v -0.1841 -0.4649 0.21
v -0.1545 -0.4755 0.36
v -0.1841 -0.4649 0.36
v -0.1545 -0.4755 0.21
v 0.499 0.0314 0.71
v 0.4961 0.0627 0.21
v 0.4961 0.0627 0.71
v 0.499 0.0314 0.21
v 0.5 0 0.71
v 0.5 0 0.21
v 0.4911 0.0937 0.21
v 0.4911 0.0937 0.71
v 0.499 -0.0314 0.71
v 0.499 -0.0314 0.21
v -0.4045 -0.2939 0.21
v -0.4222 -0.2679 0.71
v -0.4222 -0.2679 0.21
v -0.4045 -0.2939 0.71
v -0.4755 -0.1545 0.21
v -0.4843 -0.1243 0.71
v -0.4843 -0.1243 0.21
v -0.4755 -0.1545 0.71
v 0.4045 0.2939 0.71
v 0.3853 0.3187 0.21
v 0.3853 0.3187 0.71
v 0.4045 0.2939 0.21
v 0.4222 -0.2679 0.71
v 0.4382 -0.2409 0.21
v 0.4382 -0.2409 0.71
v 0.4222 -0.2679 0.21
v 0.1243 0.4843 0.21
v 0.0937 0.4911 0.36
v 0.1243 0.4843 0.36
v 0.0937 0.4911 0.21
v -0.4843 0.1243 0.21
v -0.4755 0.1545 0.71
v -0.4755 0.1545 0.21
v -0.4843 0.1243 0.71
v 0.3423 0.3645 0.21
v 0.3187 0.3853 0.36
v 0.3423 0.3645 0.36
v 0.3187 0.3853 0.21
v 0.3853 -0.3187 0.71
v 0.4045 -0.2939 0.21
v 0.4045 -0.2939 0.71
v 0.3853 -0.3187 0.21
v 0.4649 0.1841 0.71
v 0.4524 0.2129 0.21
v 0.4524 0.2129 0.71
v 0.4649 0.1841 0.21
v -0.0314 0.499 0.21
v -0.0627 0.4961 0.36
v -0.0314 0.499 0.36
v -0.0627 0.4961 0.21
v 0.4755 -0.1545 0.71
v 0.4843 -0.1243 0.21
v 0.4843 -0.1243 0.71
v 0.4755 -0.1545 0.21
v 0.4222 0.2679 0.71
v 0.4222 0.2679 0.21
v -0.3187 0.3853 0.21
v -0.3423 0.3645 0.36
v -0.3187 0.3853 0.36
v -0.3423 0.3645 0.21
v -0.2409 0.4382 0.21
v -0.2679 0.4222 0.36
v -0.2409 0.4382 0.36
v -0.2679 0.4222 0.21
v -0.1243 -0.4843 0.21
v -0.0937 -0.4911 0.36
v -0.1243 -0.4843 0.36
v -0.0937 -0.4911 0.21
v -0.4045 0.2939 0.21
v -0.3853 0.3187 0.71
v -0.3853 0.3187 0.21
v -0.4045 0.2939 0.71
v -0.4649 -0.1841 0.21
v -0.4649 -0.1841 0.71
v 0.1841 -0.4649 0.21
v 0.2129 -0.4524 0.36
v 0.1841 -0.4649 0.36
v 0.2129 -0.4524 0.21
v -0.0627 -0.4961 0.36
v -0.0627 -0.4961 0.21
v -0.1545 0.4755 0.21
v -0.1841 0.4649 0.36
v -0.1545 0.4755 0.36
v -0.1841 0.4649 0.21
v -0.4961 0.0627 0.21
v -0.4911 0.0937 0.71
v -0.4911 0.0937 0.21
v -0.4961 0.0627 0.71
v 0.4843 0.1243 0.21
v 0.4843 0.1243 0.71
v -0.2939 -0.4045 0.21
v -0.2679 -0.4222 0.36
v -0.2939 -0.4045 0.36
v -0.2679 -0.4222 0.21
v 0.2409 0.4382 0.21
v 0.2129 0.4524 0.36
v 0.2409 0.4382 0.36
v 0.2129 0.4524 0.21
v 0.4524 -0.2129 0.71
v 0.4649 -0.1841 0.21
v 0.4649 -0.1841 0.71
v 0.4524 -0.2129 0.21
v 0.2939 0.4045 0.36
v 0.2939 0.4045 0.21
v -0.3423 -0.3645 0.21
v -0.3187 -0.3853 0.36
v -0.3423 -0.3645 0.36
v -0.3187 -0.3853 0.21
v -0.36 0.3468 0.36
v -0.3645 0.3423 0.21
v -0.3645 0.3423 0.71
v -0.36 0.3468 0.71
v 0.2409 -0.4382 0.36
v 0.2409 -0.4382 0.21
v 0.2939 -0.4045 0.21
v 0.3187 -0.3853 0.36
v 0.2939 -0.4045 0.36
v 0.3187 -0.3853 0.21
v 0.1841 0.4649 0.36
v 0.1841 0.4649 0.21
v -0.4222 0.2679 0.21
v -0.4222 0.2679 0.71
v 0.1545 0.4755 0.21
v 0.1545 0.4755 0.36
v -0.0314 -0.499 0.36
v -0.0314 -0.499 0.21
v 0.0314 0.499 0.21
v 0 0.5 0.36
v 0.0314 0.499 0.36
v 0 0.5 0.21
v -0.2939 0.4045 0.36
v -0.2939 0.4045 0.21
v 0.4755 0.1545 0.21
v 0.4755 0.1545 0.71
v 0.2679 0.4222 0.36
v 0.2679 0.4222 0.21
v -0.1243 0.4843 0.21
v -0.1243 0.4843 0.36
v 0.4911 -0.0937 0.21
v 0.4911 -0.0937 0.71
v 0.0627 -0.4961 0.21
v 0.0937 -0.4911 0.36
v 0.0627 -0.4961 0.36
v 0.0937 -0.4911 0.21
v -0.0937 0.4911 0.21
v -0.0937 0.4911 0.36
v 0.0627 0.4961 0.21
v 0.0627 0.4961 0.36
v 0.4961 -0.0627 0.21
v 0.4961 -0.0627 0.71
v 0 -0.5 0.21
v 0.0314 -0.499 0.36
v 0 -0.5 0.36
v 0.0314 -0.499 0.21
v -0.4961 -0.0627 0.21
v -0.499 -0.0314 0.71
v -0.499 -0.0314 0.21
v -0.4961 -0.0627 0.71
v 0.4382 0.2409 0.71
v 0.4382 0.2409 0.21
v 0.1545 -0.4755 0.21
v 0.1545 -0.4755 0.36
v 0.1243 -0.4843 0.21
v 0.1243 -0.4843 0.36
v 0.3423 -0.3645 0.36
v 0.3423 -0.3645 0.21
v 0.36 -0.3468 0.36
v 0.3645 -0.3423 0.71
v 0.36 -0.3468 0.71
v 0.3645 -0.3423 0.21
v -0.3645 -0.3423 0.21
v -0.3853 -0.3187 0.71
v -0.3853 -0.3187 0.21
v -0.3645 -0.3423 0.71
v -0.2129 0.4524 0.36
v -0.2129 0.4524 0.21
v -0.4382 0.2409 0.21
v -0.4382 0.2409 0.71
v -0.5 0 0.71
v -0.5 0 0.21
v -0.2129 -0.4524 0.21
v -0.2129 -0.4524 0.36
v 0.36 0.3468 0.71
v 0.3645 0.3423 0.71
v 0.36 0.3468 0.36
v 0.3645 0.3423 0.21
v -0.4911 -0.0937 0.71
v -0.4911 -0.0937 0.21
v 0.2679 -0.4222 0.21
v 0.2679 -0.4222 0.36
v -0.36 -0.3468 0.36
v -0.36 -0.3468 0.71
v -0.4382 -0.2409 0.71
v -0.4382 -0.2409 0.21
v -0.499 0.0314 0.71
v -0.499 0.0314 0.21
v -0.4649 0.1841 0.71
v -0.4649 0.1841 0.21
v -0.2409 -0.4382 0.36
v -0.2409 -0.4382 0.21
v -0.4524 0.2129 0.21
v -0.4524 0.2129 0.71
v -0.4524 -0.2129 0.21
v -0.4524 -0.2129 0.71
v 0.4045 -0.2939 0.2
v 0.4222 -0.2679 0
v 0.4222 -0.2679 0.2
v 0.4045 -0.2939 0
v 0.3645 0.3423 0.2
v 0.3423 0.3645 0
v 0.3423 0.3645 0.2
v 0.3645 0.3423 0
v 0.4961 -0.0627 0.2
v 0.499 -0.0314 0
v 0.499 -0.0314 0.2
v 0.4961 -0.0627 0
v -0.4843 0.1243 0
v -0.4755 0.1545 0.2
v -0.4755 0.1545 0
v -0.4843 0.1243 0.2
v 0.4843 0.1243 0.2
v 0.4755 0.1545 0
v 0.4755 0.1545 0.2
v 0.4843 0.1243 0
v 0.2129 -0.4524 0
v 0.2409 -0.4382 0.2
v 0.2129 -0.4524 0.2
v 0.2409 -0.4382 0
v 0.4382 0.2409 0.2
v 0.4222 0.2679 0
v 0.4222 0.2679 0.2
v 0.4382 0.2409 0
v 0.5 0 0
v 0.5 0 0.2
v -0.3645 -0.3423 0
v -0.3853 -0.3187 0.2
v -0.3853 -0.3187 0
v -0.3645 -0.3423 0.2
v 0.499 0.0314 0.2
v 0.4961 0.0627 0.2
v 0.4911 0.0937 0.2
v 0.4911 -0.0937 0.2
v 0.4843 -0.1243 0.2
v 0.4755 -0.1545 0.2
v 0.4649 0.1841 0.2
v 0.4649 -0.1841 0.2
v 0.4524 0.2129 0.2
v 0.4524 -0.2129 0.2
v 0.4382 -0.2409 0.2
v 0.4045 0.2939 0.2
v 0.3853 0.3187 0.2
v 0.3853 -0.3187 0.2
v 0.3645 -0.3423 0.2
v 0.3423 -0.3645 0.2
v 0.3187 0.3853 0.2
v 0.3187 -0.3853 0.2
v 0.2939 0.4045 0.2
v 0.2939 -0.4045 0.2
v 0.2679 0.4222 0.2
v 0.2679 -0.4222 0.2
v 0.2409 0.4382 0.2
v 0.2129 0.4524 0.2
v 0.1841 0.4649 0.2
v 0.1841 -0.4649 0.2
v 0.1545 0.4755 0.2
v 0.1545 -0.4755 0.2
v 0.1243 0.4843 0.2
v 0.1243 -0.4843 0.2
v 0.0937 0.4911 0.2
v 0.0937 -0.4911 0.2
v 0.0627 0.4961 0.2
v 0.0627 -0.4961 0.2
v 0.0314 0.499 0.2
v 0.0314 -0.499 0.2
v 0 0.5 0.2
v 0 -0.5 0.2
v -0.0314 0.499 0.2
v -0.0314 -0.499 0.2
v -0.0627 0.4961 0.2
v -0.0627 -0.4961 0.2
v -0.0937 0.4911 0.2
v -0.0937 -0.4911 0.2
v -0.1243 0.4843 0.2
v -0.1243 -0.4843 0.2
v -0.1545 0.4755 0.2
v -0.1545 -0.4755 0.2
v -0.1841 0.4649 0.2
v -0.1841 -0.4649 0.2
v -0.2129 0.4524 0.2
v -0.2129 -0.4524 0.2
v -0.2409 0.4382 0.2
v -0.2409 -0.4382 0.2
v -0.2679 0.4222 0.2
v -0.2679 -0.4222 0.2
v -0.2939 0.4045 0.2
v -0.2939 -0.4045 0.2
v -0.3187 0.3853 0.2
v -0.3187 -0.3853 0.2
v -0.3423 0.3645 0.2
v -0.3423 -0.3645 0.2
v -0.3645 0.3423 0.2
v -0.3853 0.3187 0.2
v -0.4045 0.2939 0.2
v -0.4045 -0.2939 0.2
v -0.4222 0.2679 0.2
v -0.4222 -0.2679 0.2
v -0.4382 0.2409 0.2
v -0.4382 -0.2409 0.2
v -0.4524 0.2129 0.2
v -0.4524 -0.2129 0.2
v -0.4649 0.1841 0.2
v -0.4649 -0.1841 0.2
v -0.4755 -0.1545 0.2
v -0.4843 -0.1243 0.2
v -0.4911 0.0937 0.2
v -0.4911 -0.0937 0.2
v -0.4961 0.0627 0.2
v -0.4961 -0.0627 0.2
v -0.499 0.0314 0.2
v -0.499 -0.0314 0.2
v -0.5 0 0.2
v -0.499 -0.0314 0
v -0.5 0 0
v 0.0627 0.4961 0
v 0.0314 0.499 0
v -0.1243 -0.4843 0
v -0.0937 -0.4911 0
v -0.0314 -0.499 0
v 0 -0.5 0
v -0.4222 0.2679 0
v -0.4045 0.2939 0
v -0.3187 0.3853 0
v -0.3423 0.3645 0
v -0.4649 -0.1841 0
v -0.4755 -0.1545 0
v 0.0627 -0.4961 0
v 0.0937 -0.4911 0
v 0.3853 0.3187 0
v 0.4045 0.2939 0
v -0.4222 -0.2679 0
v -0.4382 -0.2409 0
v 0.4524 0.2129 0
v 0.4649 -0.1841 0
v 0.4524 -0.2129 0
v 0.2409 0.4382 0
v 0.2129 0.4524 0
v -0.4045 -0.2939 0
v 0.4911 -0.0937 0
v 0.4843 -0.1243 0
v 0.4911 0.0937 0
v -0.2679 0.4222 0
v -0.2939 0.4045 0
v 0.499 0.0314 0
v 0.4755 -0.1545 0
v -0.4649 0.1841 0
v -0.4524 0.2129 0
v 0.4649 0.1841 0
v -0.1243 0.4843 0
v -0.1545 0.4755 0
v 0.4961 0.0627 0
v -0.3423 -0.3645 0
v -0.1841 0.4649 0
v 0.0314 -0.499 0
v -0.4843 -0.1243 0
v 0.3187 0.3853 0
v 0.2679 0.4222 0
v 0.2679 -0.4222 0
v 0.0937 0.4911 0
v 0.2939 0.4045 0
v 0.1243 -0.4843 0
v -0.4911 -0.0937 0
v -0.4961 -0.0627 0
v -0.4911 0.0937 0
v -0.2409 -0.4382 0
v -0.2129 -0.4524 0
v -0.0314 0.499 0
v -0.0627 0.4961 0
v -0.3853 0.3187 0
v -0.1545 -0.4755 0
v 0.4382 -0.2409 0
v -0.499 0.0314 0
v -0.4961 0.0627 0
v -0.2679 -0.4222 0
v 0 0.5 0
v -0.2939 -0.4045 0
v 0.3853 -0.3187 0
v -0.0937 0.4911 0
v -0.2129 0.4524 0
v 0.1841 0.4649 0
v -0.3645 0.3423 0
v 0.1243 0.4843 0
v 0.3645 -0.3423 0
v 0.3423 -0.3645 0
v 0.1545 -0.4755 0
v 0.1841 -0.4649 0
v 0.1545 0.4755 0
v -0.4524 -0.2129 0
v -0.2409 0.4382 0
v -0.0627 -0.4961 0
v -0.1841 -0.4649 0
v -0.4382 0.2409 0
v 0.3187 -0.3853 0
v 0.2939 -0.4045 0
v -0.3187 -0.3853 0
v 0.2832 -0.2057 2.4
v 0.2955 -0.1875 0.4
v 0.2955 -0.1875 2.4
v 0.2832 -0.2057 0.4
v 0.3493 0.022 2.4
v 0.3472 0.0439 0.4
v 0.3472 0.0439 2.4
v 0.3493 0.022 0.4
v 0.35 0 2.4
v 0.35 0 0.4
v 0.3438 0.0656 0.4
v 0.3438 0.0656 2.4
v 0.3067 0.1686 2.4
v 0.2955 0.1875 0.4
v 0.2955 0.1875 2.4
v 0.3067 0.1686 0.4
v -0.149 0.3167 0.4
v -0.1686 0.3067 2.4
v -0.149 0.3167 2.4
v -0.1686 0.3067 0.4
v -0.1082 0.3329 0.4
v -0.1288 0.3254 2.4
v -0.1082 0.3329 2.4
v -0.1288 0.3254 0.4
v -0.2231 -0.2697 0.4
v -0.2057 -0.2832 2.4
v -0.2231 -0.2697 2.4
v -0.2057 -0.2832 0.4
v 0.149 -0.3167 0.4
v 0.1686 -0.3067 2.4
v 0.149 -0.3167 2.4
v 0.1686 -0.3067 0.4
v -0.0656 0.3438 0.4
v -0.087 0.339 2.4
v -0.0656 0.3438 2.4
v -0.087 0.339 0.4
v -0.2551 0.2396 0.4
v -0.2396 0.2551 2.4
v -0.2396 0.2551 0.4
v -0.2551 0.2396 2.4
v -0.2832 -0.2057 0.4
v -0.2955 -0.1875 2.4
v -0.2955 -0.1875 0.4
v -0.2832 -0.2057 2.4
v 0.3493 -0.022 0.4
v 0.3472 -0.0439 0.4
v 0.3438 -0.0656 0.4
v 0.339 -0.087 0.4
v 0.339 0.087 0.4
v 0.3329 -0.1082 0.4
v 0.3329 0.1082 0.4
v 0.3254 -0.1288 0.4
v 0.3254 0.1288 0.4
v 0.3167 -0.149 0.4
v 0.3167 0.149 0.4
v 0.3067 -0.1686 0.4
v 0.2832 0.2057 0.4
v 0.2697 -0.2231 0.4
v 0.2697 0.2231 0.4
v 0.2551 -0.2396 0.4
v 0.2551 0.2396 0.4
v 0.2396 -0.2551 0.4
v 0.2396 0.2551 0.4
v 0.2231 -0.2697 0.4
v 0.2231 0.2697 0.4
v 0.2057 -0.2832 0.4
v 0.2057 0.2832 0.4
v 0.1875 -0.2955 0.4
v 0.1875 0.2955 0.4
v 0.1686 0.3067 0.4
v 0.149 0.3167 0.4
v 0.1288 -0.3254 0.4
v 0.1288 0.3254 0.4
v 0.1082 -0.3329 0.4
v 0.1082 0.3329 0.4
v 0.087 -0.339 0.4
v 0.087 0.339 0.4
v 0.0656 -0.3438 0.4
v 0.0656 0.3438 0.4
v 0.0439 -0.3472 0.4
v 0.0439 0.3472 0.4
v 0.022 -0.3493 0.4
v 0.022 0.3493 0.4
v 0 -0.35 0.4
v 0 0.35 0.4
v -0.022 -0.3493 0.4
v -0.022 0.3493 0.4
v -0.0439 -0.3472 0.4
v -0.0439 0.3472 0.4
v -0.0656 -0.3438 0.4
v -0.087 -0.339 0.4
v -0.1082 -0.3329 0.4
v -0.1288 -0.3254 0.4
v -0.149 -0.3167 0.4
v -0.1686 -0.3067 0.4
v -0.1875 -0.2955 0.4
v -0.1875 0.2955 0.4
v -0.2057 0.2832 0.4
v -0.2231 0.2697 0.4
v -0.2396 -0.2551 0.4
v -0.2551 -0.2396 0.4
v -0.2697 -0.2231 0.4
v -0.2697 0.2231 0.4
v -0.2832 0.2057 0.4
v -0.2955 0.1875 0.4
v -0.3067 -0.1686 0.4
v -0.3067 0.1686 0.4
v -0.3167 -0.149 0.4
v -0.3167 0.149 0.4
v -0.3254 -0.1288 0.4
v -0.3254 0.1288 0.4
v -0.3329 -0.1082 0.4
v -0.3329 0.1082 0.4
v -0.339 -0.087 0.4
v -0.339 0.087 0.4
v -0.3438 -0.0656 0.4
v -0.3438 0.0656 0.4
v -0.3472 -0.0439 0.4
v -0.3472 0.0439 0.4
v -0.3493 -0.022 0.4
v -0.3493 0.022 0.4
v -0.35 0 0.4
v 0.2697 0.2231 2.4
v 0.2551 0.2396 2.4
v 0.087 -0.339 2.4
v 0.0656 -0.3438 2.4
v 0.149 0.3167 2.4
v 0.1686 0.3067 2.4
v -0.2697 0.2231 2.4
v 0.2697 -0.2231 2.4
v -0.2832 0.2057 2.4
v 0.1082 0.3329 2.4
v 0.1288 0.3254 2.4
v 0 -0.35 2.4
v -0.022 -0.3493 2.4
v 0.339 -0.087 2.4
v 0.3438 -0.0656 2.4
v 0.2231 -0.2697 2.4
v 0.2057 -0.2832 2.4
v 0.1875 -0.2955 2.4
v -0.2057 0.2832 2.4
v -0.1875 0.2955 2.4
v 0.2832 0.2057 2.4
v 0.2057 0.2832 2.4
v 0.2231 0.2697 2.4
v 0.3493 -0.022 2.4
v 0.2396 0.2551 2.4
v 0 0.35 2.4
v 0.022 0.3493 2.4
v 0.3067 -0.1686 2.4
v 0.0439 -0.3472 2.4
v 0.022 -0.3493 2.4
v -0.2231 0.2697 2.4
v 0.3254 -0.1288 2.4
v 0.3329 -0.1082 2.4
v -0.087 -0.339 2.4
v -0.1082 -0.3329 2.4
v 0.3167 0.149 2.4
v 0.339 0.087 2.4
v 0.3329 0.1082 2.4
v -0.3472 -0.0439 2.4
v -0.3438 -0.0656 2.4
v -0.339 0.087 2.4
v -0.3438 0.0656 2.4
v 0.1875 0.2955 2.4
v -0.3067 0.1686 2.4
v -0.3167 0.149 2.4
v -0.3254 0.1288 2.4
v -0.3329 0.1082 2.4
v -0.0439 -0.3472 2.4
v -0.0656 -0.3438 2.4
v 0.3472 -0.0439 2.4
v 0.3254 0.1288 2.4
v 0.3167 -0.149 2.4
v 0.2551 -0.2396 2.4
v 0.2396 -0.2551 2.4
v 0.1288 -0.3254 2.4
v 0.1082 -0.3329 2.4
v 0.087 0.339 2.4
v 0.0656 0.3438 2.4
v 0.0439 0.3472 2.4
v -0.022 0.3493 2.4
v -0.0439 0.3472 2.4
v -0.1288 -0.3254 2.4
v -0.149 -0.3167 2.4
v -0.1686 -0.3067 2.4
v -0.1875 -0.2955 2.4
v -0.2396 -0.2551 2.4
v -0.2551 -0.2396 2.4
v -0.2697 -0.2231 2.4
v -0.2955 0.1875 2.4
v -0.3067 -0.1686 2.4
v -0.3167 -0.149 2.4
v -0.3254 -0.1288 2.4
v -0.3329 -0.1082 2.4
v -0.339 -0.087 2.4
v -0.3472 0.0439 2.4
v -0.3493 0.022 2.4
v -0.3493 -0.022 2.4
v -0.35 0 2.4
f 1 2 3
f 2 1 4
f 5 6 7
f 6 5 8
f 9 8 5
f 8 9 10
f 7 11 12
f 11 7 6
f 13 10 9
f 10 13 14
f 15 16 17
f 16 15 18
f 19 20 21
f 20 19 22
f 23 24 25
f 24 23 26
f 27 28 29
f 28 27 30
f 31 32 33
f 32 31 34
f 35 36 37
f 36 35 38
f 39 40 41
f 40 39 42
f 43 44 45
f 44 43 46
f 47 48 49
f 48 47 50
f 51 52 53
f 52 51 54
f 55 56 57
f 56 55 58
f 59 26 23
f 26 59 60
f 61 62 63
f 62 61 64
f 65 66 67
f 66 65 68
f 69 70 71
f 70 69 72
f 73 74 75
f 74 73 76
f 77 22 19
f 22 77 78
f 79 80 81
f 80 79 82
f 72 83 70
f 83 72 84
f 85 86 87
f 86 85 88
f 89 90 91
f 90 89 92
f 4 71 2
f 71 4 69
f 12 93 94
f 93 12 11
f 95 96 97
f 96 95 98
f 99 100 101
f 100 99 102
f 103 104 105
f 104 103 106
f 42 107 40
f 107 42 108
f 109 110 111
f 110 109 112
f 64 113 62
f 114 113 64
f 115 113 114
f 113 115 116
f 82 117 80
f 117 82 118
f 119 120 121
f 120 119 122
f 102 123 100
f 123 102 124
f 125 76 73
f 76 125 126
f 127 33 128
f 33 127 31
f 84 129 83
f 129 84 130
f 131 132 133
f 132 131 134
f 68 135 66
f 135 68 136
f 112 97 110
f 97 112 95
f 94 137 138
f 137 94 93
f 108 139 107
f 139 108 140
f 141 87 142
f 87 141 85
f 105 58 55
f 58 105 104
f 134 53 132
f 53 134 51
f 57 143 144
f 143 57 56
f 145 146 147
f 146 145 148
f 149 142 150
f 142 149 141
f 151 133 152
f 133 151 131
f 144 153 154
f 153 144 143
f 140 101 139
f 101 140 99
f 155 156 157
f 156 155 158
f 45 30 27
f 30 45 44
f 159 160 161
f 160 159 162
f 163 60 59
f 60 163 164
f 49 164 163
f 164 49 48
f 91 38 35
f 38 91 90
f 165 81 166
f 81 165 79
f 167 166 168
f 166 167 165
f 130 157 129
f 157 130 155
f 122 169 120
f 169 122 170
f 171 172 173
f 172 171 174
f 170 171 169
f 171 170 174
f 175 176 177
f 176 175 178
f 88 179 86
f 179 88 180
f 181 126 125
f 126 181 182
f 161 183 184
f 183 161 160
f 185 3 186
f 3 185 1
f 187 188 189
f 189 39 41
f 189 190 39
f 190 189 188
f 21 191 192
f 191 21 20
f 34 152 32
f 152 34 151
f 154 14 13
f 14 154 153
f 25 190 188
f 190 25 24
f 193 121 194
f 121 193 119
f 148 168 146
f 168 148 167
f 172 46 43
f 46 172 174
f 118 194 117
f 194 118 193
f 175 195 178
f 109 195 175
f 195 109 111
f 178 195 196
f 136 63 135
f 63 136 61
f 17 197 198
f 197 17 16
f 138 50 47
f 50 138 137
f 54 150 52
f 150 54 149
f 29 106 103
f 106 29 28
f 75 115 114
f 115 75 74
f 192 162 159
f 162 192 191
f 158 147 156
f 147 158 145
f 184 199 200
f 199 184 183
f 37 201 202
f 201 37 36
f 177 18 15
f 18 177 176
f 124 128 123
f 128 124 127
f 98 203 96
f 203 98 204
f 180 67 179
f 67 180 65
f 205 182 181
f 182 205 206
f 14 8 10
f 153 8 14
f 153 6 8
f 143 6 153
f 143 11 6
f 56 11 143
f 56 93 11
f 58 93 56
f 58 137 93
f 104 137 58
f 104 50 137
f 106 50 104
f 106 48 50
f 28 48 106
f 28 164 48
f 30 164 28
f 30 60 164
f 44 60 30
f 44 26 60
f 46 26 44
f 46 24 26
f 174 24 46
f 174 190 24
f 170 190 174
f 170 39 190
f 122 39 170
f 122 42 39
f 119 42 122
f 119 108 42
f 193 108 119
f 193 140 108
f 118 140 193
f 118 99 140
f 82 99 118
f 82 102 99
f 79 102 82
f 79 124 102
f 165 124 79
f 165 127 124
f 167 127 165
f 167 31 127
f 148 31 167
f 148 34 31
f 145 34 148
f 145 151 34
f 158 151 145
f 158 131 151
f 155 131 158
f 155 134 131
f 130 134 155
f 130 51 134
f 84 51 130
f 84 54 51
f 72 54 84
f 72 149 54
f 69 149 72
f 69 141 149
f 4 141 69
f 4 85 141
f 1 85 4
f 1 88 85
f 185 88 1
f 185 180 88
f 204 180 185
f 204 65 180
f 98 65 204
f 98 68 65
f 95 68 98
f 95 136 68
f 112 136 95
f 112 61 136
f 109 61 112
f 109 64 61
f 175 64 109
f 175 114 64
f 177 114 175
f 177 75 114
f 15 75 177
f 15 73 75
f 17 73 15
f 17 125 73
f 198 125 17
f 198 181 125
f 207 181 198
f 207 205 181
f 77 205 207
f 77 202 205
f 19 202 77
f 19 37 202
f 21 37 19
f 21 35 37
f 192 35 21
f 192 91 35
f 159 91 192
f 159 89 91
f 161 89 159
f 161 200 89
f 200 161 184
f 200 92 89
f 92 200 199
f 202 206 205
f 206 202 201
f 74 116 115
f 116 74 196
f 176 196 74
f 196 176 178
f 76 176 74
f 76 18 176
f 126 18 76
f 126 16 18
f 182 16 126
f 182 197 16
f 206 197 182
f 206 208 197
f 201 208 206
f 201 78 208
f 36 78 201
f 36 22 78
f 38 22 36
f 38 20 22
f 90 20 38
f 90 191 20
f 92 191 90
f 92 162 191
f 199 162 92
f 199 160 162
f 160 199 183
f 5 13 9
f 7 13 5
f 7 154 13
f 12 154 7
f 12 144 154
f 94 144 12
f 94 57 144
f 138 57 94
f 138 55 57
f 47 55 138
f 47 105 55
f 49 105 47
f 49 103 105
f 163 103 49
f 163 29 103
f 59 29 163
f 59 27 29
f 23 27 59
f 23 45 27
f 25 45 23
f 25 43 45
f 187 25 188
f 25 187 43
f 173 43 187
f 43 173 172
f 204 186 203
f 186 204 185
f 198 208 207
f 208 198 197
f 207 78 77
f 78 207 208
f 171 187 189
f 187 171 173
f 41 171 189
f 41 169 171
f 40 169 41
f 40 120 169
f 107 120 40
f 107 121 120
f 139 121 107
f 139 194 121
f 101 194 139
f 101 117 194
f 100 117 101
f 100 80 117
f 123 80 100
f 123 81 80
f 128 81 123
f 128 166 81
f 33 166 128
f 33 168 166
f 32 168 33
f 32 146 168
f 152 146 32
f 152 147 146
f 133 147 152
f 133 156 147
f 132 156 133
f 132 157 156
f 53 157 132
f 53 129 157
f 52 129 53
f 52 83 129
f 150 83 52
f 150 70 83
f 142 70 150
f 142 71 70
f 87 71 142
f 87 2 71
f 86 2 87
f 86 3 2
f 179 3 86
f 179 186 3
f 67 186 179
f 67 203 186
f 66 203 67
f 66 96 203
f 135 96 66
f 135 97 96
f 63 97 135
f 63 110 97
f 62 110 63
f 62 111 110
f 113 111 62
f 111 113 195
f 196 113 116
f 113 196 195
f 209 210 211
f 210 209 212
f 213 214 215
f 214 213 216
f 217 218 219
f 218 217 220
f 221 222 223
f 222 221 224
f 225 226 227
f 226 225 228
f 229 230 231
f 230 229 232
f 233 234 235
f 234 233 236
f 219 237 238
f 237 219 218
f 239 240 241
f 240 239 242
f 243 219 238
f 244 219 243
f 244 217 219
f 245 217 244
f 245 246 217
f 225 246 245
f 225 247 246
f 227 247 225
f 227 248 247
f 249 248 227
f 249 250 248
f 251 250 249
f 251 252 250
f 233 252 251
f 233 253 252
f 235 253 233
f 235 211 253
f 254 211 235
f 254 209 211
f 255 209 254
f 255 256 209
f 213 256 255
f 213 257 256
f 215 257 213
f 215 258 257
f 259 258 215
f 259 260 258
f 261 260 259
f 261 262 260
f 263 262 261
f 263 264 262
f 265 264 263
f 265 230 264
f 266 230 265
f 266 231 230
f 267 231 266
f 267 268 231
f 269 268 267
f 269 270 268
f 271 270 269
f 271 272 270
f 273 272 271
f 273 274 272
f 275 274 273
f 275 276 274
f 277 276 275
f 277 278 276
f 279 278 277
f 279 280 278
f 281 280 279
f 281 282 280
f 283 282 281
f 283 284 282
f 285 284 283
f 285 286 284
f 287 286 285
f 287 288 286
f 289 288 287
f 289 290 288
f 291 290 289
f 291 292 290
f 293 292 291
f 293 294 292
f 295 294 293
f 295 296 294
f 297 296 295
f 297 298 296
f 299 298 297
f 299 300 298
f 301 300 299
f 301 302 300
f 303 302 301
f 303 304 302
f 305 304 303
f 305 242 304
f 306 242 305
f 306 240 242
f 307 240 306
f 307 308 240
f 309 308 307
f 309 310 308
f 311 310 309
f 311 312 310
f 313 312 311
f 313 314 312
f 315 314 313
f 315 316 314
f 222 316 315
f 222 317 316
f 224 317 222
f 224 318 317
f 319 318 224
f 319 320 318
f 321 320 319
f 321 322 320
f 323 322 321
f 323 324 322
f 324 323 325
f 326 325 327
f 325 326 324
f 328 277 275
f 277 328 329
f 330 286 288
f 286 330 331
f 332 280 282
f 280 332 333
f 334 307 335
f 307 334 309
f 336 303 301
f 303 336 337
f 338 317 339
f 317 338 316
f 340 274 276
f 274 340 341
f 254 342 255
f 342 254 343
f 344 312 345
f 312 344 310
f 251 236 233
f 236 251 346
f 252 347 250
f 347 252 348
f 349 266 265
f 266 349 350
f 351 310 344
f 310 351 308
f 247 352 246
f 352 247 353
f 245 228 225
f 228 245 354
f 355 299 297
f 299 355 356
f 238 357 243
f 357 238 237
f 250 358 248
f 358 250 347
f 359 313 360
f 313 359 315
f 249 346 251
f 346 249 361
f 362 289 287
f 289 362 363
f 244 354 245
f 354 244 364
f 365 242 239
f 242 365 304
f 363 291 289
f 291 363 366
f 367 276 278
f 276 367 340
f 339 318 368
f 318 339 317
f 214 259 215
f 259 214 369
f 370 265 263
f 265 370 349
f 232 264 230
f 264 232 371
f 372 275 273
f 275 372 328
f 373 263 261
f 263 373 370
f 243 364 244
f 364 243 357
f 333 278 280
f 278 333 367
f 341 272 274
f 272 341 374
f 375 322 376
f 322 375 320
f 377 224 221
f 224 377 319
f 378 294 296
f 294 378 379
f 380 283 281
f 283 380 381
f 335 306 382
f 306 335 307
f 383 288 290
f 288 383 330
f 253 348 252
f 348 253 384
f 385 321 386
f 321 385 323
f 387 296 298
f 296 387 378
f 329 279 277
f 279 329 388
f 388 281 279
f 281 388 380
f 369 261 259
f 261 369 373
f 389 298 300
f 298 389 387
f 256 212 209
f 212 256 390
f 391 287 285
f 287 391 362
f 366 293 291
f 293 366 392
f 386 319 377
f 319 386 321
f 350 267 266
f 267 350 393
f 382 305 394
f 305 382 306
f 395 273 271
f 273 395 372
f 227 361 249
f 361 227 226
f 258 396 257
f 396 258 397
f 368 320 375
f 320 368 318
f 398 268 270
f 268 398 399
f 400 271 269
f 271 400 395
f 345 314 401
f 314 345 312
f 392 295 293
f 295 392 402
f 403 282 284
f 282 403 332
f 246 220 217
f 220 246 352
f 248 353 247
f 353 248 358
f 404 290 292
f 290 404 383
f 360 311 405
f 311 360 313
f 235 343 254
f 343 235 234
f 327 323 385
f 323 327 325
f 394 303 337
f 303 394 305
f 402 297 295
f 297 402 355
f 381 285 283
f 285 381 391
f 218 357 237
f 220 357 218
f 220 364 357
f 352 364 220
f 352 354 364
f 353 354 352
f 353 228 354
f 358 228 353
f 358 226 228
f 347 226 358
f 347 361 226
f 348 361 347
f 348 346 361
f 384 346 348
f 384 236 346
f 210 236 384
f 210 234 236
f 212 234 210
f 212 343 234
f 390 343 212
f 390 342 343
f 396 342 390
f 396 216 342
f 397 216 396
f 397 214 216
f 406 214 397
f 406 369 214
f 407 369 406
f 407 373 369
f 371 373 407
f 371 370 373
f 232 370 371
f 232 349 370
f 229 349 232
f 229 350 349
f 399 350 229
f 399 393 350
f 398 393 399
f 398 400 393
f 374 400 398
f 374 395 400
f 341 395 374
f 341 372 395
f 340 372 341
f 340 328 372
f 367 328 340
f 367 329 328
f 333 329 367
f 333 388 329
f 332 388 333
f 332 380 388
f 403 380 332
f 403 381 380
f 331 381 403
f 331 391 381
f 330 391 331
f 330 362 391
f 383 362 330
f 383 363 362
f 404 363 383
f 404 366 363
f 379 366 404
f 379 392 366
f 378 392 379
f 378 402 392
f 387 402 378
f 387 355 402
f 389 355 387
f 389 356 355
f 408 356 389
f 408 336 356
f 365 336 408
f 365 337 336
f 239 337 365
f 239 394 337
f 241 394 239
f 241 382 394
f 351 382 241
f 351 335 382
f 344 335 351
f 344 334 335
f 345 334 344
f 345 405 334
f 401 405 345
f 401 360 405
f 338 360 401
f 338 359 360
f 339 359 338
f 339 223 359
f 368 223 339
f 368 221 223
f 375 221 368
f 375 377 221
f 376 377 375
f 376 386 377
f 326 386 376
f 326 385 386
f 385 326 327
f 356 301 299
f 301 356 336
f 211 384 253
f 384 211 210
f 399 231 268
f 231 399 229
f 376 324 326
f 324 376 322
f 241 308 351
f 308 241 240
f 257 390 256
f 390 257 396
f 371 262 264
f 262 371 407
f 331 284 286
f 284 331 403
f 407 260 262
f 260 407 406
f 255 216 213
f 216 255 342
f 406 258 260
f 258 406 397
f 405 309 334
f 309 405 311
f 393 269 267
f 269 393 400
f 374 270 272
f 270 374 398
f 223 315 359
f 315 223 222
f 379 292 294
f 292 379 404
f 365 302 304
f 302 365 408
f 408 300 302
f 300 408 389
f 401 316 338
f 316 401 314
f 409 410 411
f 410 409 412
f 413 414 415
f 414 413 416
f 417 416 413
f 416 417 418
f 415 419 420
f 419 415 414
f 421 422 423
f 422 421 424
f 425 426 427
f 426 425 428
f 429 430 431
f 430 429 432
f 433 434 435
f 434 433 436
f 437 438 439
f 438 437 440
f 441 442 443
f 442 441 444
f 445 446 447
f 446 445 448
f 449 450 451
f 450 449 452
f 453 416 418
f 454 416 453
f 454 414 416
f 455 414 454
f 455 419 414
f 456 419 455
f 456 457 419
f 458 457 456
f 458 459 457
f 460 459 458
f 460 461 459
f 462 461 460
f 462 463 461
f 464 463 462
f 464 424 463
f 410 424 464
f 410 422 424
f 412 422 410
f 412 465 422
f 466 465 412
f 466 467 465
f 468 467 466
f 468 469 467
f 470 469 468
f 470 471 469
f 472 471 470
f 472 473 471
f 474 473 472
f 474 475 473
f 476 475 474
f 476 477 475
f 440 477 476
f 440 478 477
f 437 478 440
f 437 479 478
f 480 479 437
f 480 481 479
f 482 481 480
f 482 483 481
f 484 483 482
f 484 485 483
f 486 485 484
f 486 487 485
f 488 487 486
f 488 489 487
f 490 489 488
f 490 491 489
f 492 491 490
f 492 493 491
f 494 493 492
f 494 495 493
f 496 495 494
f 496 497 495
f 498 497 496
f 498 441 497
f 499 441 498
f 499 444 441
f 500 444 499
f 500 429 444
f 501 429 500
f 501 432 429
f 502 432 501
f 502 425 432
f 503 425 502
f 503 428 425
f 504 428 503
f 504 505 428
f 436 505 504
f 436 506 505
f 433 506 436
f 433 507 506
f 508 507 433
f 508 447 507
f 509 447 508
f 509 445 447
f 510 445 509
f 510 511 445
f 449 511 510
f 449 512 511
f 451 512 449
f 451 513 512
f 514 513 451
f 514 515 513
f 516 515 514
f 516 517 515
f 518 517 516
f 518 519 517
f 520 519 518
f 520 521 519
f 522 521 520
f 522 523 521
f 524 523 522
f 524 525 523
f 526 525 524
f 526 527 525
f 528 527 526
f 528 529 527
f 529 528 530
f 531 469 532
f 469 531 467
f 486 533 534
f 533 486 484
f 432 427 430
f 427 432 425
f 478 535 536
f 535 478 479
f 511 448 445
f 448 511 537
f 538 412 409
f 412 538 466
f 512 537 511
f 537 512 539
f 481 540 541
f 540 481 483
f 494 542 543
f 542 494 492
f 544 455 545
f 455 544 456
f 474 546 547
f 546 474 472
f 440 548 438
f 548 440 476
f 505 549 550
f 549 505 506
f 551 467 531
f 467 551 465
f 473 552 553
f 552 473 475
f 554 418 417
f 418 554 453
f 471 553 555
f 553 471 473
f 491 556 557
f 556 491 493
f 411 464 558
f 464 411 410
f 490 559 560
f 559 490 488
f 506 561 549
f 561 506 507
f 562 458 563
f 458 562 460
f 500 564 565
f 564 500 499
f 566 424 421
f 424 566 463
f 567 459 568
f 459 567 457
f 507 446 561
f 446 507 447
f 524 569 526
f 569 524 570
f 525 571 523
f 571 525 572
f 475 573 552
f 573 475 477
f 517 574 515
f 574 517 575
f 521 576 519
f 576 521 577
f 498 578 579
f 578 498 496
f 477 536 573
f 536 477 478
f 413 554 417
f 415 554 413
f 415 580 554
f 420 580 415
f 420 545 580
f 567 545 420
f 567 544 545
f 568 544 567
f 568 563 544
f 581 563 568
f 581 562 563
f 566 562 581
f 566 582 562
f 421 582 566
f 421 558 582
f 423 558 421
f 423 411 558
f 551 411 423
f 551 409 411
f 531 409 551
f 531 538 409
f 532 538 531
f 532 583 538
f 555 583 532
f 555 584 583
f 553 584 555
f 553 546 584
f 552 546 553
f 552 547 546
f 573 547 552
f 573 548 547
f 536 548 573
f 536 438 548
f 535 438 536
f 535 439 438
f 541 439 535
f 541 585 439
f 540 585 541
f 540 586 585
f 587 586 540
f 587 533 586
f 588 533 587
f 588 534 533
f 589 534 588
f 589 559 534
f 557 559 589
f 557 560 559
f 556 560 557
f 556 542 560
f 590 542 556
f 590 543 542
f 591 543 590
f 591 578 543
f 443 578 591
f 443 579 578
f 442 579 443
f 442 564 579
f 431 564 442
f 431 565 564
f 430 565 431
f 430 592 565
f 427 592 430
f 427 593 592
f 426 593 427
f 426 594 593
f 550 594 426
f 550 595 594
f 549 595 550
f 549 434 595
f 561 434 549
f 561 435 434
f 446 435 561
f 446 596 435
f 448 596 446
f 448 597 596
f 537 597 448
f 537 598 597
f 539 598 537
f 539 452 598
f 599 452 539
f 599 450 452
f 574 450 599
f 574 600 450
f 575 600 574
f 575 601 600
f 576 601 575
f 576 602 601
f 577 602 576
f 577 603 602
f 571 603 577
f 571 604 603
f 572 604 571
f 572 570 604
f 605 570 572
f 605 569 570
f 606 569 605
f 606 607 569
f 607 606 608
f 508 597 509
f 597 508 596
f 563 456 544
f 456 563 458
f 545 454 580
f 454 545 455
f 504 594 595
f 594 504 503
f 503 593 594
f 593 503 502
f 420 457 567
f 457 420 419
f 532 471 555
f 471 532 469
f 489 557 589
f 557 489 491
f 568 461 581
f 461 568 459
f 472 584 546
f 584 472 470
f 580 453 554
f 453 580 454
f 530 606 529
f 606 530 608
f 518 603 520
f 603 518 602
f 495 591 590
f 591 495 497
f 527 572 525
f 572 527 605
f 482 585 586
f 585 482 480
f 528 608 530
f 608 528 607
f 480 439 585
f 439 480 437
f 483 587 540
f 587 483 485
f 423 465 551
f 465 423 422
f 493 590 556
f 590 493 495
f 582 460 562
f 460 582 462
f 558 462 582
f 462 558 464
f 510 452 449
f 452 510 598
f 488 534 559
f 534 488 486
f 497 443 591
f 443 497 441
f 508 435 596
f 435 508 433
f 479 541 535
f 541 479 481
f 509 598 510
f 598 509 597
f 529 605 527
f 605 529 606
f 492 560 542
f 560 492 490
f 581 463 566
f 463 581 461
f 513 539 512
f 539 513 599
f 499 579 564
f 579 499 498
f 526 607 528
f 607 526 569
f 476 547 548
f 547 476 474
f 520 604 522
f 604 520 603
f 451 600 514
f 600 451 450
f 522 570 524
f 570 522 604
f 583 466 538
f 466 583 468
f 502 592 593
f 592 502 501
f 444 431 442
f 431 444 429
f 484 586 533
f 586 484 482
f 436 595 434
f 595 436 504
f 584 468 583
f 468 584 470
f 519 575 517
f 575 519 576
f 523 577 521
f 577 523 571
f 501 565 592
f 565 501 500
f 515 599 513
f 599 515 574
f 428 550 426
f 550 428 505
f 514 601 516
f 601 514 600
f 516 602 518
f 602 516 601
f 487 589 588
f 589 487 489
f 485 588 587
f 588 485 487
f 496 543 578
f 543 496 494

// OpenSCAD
// base1.scad - Lowest base of arm

size_per = 1/100;

base1(100*size_per, 20*size_per);

base_moving(100*size_per, 50*size_per, 21*size_per);

proximal_arm();

// The $fn parameter will influence all objects inside this module
// It can, optionally, be overridden when instantiating the module
module base1(size=50, height=20, $fn=100) {
    // Temporary variables
    hole = size/2;
    cylinderHeight = size * 0.25;
    cylinder(d=size, h=height);

    // One positive object (sphere) and three negative objects (cylinders)
    /*
    difference() {
        
        cylinder(d=hole, h=cylinderHeight, center=true);
        // The '#' operator highlights the object
        #rotate([90, 0, 0]) cylinder(d=hole, h=cylinderHeight, center=true);
        rotate([0, 90, 0]) cylinder(d=hole, h=cylinderHeight, center=true);
    }
    */
}

// The $fn parameter will influence all objects inside this module
// It can, optionally, be overridden when instantiating the module
module base_moving(size=50, height=20, tx, $fn=100) {
    // Temporary variables
    hole = size*0.8;
    cutCylinderHeight = size;
    hole_z = tx + (hole/2) + 15*size_per;
    // One positive object (sphere) and three negative objects (cylinders)
    
    difference() {
        translate([0, 0, tx]) cylinder(d=size, h=height);
        
        translate([0, 0, hole_z]) cube([hole*0.9, cutCylinderHeight, hole], center=true);
        // The '#' operator highlights the object
        //#rotate([90, 0, 0]) cylinder(d=hole, h=cylinderHeight, center=true);
        //rotate([0, 90, 0]) cylinder(d=hole, h=cylinderHeight, center=true);
    }
    
}

module proximal_arm(length=200*size_per, width=35*size_per, base_rad=50*size_per, end_rad=50*size_per, start_coord=[0,0,40*size_per], $fn=100) {
    
    translate(start_coord) cylinder(h=length, r=width);
    
    
    // Temporary variables
    /*
    hole = size*0.8;
    cutCylinderHeight = size;
    hole_z = tx + (hole/2) + 15;
    // One positive object (sphere) and three negative objects (cylinders)
    
    difference() {
        translate([0, 0, tx]) cylinder(d=size, h=height);
        
        translate([0, 0, hole_z]) cube([hole*0.9, cutCylinderHeight, hole], center=true);
        // The '#' operator highlights the object
        //#rotate([90, 0, 0]) cylinder(d=hole, h=cylinderHeight, center=true);
        //rotate([0, 90, 0]) cylinder(d=hole, h=cylinderHeight, center=true);
    }
    */
}


echo(version=version());
// Written by Clifford Wolf <clifford@clifford.at> and Marius
// Kintel <marius@kintel.net>
//
// To the extent possible under law, the author(s) have dedicated all
// copyright and related and neighboring rights to this software to the
// public domain worldwide. This software is distributed without any
// warranty.
//
// You should have received a copy of the CC0 Public Domain
// Dedication along with this software.
// If not, see <http://creativecommons.org/publicdomain/zero/1.0/>.
